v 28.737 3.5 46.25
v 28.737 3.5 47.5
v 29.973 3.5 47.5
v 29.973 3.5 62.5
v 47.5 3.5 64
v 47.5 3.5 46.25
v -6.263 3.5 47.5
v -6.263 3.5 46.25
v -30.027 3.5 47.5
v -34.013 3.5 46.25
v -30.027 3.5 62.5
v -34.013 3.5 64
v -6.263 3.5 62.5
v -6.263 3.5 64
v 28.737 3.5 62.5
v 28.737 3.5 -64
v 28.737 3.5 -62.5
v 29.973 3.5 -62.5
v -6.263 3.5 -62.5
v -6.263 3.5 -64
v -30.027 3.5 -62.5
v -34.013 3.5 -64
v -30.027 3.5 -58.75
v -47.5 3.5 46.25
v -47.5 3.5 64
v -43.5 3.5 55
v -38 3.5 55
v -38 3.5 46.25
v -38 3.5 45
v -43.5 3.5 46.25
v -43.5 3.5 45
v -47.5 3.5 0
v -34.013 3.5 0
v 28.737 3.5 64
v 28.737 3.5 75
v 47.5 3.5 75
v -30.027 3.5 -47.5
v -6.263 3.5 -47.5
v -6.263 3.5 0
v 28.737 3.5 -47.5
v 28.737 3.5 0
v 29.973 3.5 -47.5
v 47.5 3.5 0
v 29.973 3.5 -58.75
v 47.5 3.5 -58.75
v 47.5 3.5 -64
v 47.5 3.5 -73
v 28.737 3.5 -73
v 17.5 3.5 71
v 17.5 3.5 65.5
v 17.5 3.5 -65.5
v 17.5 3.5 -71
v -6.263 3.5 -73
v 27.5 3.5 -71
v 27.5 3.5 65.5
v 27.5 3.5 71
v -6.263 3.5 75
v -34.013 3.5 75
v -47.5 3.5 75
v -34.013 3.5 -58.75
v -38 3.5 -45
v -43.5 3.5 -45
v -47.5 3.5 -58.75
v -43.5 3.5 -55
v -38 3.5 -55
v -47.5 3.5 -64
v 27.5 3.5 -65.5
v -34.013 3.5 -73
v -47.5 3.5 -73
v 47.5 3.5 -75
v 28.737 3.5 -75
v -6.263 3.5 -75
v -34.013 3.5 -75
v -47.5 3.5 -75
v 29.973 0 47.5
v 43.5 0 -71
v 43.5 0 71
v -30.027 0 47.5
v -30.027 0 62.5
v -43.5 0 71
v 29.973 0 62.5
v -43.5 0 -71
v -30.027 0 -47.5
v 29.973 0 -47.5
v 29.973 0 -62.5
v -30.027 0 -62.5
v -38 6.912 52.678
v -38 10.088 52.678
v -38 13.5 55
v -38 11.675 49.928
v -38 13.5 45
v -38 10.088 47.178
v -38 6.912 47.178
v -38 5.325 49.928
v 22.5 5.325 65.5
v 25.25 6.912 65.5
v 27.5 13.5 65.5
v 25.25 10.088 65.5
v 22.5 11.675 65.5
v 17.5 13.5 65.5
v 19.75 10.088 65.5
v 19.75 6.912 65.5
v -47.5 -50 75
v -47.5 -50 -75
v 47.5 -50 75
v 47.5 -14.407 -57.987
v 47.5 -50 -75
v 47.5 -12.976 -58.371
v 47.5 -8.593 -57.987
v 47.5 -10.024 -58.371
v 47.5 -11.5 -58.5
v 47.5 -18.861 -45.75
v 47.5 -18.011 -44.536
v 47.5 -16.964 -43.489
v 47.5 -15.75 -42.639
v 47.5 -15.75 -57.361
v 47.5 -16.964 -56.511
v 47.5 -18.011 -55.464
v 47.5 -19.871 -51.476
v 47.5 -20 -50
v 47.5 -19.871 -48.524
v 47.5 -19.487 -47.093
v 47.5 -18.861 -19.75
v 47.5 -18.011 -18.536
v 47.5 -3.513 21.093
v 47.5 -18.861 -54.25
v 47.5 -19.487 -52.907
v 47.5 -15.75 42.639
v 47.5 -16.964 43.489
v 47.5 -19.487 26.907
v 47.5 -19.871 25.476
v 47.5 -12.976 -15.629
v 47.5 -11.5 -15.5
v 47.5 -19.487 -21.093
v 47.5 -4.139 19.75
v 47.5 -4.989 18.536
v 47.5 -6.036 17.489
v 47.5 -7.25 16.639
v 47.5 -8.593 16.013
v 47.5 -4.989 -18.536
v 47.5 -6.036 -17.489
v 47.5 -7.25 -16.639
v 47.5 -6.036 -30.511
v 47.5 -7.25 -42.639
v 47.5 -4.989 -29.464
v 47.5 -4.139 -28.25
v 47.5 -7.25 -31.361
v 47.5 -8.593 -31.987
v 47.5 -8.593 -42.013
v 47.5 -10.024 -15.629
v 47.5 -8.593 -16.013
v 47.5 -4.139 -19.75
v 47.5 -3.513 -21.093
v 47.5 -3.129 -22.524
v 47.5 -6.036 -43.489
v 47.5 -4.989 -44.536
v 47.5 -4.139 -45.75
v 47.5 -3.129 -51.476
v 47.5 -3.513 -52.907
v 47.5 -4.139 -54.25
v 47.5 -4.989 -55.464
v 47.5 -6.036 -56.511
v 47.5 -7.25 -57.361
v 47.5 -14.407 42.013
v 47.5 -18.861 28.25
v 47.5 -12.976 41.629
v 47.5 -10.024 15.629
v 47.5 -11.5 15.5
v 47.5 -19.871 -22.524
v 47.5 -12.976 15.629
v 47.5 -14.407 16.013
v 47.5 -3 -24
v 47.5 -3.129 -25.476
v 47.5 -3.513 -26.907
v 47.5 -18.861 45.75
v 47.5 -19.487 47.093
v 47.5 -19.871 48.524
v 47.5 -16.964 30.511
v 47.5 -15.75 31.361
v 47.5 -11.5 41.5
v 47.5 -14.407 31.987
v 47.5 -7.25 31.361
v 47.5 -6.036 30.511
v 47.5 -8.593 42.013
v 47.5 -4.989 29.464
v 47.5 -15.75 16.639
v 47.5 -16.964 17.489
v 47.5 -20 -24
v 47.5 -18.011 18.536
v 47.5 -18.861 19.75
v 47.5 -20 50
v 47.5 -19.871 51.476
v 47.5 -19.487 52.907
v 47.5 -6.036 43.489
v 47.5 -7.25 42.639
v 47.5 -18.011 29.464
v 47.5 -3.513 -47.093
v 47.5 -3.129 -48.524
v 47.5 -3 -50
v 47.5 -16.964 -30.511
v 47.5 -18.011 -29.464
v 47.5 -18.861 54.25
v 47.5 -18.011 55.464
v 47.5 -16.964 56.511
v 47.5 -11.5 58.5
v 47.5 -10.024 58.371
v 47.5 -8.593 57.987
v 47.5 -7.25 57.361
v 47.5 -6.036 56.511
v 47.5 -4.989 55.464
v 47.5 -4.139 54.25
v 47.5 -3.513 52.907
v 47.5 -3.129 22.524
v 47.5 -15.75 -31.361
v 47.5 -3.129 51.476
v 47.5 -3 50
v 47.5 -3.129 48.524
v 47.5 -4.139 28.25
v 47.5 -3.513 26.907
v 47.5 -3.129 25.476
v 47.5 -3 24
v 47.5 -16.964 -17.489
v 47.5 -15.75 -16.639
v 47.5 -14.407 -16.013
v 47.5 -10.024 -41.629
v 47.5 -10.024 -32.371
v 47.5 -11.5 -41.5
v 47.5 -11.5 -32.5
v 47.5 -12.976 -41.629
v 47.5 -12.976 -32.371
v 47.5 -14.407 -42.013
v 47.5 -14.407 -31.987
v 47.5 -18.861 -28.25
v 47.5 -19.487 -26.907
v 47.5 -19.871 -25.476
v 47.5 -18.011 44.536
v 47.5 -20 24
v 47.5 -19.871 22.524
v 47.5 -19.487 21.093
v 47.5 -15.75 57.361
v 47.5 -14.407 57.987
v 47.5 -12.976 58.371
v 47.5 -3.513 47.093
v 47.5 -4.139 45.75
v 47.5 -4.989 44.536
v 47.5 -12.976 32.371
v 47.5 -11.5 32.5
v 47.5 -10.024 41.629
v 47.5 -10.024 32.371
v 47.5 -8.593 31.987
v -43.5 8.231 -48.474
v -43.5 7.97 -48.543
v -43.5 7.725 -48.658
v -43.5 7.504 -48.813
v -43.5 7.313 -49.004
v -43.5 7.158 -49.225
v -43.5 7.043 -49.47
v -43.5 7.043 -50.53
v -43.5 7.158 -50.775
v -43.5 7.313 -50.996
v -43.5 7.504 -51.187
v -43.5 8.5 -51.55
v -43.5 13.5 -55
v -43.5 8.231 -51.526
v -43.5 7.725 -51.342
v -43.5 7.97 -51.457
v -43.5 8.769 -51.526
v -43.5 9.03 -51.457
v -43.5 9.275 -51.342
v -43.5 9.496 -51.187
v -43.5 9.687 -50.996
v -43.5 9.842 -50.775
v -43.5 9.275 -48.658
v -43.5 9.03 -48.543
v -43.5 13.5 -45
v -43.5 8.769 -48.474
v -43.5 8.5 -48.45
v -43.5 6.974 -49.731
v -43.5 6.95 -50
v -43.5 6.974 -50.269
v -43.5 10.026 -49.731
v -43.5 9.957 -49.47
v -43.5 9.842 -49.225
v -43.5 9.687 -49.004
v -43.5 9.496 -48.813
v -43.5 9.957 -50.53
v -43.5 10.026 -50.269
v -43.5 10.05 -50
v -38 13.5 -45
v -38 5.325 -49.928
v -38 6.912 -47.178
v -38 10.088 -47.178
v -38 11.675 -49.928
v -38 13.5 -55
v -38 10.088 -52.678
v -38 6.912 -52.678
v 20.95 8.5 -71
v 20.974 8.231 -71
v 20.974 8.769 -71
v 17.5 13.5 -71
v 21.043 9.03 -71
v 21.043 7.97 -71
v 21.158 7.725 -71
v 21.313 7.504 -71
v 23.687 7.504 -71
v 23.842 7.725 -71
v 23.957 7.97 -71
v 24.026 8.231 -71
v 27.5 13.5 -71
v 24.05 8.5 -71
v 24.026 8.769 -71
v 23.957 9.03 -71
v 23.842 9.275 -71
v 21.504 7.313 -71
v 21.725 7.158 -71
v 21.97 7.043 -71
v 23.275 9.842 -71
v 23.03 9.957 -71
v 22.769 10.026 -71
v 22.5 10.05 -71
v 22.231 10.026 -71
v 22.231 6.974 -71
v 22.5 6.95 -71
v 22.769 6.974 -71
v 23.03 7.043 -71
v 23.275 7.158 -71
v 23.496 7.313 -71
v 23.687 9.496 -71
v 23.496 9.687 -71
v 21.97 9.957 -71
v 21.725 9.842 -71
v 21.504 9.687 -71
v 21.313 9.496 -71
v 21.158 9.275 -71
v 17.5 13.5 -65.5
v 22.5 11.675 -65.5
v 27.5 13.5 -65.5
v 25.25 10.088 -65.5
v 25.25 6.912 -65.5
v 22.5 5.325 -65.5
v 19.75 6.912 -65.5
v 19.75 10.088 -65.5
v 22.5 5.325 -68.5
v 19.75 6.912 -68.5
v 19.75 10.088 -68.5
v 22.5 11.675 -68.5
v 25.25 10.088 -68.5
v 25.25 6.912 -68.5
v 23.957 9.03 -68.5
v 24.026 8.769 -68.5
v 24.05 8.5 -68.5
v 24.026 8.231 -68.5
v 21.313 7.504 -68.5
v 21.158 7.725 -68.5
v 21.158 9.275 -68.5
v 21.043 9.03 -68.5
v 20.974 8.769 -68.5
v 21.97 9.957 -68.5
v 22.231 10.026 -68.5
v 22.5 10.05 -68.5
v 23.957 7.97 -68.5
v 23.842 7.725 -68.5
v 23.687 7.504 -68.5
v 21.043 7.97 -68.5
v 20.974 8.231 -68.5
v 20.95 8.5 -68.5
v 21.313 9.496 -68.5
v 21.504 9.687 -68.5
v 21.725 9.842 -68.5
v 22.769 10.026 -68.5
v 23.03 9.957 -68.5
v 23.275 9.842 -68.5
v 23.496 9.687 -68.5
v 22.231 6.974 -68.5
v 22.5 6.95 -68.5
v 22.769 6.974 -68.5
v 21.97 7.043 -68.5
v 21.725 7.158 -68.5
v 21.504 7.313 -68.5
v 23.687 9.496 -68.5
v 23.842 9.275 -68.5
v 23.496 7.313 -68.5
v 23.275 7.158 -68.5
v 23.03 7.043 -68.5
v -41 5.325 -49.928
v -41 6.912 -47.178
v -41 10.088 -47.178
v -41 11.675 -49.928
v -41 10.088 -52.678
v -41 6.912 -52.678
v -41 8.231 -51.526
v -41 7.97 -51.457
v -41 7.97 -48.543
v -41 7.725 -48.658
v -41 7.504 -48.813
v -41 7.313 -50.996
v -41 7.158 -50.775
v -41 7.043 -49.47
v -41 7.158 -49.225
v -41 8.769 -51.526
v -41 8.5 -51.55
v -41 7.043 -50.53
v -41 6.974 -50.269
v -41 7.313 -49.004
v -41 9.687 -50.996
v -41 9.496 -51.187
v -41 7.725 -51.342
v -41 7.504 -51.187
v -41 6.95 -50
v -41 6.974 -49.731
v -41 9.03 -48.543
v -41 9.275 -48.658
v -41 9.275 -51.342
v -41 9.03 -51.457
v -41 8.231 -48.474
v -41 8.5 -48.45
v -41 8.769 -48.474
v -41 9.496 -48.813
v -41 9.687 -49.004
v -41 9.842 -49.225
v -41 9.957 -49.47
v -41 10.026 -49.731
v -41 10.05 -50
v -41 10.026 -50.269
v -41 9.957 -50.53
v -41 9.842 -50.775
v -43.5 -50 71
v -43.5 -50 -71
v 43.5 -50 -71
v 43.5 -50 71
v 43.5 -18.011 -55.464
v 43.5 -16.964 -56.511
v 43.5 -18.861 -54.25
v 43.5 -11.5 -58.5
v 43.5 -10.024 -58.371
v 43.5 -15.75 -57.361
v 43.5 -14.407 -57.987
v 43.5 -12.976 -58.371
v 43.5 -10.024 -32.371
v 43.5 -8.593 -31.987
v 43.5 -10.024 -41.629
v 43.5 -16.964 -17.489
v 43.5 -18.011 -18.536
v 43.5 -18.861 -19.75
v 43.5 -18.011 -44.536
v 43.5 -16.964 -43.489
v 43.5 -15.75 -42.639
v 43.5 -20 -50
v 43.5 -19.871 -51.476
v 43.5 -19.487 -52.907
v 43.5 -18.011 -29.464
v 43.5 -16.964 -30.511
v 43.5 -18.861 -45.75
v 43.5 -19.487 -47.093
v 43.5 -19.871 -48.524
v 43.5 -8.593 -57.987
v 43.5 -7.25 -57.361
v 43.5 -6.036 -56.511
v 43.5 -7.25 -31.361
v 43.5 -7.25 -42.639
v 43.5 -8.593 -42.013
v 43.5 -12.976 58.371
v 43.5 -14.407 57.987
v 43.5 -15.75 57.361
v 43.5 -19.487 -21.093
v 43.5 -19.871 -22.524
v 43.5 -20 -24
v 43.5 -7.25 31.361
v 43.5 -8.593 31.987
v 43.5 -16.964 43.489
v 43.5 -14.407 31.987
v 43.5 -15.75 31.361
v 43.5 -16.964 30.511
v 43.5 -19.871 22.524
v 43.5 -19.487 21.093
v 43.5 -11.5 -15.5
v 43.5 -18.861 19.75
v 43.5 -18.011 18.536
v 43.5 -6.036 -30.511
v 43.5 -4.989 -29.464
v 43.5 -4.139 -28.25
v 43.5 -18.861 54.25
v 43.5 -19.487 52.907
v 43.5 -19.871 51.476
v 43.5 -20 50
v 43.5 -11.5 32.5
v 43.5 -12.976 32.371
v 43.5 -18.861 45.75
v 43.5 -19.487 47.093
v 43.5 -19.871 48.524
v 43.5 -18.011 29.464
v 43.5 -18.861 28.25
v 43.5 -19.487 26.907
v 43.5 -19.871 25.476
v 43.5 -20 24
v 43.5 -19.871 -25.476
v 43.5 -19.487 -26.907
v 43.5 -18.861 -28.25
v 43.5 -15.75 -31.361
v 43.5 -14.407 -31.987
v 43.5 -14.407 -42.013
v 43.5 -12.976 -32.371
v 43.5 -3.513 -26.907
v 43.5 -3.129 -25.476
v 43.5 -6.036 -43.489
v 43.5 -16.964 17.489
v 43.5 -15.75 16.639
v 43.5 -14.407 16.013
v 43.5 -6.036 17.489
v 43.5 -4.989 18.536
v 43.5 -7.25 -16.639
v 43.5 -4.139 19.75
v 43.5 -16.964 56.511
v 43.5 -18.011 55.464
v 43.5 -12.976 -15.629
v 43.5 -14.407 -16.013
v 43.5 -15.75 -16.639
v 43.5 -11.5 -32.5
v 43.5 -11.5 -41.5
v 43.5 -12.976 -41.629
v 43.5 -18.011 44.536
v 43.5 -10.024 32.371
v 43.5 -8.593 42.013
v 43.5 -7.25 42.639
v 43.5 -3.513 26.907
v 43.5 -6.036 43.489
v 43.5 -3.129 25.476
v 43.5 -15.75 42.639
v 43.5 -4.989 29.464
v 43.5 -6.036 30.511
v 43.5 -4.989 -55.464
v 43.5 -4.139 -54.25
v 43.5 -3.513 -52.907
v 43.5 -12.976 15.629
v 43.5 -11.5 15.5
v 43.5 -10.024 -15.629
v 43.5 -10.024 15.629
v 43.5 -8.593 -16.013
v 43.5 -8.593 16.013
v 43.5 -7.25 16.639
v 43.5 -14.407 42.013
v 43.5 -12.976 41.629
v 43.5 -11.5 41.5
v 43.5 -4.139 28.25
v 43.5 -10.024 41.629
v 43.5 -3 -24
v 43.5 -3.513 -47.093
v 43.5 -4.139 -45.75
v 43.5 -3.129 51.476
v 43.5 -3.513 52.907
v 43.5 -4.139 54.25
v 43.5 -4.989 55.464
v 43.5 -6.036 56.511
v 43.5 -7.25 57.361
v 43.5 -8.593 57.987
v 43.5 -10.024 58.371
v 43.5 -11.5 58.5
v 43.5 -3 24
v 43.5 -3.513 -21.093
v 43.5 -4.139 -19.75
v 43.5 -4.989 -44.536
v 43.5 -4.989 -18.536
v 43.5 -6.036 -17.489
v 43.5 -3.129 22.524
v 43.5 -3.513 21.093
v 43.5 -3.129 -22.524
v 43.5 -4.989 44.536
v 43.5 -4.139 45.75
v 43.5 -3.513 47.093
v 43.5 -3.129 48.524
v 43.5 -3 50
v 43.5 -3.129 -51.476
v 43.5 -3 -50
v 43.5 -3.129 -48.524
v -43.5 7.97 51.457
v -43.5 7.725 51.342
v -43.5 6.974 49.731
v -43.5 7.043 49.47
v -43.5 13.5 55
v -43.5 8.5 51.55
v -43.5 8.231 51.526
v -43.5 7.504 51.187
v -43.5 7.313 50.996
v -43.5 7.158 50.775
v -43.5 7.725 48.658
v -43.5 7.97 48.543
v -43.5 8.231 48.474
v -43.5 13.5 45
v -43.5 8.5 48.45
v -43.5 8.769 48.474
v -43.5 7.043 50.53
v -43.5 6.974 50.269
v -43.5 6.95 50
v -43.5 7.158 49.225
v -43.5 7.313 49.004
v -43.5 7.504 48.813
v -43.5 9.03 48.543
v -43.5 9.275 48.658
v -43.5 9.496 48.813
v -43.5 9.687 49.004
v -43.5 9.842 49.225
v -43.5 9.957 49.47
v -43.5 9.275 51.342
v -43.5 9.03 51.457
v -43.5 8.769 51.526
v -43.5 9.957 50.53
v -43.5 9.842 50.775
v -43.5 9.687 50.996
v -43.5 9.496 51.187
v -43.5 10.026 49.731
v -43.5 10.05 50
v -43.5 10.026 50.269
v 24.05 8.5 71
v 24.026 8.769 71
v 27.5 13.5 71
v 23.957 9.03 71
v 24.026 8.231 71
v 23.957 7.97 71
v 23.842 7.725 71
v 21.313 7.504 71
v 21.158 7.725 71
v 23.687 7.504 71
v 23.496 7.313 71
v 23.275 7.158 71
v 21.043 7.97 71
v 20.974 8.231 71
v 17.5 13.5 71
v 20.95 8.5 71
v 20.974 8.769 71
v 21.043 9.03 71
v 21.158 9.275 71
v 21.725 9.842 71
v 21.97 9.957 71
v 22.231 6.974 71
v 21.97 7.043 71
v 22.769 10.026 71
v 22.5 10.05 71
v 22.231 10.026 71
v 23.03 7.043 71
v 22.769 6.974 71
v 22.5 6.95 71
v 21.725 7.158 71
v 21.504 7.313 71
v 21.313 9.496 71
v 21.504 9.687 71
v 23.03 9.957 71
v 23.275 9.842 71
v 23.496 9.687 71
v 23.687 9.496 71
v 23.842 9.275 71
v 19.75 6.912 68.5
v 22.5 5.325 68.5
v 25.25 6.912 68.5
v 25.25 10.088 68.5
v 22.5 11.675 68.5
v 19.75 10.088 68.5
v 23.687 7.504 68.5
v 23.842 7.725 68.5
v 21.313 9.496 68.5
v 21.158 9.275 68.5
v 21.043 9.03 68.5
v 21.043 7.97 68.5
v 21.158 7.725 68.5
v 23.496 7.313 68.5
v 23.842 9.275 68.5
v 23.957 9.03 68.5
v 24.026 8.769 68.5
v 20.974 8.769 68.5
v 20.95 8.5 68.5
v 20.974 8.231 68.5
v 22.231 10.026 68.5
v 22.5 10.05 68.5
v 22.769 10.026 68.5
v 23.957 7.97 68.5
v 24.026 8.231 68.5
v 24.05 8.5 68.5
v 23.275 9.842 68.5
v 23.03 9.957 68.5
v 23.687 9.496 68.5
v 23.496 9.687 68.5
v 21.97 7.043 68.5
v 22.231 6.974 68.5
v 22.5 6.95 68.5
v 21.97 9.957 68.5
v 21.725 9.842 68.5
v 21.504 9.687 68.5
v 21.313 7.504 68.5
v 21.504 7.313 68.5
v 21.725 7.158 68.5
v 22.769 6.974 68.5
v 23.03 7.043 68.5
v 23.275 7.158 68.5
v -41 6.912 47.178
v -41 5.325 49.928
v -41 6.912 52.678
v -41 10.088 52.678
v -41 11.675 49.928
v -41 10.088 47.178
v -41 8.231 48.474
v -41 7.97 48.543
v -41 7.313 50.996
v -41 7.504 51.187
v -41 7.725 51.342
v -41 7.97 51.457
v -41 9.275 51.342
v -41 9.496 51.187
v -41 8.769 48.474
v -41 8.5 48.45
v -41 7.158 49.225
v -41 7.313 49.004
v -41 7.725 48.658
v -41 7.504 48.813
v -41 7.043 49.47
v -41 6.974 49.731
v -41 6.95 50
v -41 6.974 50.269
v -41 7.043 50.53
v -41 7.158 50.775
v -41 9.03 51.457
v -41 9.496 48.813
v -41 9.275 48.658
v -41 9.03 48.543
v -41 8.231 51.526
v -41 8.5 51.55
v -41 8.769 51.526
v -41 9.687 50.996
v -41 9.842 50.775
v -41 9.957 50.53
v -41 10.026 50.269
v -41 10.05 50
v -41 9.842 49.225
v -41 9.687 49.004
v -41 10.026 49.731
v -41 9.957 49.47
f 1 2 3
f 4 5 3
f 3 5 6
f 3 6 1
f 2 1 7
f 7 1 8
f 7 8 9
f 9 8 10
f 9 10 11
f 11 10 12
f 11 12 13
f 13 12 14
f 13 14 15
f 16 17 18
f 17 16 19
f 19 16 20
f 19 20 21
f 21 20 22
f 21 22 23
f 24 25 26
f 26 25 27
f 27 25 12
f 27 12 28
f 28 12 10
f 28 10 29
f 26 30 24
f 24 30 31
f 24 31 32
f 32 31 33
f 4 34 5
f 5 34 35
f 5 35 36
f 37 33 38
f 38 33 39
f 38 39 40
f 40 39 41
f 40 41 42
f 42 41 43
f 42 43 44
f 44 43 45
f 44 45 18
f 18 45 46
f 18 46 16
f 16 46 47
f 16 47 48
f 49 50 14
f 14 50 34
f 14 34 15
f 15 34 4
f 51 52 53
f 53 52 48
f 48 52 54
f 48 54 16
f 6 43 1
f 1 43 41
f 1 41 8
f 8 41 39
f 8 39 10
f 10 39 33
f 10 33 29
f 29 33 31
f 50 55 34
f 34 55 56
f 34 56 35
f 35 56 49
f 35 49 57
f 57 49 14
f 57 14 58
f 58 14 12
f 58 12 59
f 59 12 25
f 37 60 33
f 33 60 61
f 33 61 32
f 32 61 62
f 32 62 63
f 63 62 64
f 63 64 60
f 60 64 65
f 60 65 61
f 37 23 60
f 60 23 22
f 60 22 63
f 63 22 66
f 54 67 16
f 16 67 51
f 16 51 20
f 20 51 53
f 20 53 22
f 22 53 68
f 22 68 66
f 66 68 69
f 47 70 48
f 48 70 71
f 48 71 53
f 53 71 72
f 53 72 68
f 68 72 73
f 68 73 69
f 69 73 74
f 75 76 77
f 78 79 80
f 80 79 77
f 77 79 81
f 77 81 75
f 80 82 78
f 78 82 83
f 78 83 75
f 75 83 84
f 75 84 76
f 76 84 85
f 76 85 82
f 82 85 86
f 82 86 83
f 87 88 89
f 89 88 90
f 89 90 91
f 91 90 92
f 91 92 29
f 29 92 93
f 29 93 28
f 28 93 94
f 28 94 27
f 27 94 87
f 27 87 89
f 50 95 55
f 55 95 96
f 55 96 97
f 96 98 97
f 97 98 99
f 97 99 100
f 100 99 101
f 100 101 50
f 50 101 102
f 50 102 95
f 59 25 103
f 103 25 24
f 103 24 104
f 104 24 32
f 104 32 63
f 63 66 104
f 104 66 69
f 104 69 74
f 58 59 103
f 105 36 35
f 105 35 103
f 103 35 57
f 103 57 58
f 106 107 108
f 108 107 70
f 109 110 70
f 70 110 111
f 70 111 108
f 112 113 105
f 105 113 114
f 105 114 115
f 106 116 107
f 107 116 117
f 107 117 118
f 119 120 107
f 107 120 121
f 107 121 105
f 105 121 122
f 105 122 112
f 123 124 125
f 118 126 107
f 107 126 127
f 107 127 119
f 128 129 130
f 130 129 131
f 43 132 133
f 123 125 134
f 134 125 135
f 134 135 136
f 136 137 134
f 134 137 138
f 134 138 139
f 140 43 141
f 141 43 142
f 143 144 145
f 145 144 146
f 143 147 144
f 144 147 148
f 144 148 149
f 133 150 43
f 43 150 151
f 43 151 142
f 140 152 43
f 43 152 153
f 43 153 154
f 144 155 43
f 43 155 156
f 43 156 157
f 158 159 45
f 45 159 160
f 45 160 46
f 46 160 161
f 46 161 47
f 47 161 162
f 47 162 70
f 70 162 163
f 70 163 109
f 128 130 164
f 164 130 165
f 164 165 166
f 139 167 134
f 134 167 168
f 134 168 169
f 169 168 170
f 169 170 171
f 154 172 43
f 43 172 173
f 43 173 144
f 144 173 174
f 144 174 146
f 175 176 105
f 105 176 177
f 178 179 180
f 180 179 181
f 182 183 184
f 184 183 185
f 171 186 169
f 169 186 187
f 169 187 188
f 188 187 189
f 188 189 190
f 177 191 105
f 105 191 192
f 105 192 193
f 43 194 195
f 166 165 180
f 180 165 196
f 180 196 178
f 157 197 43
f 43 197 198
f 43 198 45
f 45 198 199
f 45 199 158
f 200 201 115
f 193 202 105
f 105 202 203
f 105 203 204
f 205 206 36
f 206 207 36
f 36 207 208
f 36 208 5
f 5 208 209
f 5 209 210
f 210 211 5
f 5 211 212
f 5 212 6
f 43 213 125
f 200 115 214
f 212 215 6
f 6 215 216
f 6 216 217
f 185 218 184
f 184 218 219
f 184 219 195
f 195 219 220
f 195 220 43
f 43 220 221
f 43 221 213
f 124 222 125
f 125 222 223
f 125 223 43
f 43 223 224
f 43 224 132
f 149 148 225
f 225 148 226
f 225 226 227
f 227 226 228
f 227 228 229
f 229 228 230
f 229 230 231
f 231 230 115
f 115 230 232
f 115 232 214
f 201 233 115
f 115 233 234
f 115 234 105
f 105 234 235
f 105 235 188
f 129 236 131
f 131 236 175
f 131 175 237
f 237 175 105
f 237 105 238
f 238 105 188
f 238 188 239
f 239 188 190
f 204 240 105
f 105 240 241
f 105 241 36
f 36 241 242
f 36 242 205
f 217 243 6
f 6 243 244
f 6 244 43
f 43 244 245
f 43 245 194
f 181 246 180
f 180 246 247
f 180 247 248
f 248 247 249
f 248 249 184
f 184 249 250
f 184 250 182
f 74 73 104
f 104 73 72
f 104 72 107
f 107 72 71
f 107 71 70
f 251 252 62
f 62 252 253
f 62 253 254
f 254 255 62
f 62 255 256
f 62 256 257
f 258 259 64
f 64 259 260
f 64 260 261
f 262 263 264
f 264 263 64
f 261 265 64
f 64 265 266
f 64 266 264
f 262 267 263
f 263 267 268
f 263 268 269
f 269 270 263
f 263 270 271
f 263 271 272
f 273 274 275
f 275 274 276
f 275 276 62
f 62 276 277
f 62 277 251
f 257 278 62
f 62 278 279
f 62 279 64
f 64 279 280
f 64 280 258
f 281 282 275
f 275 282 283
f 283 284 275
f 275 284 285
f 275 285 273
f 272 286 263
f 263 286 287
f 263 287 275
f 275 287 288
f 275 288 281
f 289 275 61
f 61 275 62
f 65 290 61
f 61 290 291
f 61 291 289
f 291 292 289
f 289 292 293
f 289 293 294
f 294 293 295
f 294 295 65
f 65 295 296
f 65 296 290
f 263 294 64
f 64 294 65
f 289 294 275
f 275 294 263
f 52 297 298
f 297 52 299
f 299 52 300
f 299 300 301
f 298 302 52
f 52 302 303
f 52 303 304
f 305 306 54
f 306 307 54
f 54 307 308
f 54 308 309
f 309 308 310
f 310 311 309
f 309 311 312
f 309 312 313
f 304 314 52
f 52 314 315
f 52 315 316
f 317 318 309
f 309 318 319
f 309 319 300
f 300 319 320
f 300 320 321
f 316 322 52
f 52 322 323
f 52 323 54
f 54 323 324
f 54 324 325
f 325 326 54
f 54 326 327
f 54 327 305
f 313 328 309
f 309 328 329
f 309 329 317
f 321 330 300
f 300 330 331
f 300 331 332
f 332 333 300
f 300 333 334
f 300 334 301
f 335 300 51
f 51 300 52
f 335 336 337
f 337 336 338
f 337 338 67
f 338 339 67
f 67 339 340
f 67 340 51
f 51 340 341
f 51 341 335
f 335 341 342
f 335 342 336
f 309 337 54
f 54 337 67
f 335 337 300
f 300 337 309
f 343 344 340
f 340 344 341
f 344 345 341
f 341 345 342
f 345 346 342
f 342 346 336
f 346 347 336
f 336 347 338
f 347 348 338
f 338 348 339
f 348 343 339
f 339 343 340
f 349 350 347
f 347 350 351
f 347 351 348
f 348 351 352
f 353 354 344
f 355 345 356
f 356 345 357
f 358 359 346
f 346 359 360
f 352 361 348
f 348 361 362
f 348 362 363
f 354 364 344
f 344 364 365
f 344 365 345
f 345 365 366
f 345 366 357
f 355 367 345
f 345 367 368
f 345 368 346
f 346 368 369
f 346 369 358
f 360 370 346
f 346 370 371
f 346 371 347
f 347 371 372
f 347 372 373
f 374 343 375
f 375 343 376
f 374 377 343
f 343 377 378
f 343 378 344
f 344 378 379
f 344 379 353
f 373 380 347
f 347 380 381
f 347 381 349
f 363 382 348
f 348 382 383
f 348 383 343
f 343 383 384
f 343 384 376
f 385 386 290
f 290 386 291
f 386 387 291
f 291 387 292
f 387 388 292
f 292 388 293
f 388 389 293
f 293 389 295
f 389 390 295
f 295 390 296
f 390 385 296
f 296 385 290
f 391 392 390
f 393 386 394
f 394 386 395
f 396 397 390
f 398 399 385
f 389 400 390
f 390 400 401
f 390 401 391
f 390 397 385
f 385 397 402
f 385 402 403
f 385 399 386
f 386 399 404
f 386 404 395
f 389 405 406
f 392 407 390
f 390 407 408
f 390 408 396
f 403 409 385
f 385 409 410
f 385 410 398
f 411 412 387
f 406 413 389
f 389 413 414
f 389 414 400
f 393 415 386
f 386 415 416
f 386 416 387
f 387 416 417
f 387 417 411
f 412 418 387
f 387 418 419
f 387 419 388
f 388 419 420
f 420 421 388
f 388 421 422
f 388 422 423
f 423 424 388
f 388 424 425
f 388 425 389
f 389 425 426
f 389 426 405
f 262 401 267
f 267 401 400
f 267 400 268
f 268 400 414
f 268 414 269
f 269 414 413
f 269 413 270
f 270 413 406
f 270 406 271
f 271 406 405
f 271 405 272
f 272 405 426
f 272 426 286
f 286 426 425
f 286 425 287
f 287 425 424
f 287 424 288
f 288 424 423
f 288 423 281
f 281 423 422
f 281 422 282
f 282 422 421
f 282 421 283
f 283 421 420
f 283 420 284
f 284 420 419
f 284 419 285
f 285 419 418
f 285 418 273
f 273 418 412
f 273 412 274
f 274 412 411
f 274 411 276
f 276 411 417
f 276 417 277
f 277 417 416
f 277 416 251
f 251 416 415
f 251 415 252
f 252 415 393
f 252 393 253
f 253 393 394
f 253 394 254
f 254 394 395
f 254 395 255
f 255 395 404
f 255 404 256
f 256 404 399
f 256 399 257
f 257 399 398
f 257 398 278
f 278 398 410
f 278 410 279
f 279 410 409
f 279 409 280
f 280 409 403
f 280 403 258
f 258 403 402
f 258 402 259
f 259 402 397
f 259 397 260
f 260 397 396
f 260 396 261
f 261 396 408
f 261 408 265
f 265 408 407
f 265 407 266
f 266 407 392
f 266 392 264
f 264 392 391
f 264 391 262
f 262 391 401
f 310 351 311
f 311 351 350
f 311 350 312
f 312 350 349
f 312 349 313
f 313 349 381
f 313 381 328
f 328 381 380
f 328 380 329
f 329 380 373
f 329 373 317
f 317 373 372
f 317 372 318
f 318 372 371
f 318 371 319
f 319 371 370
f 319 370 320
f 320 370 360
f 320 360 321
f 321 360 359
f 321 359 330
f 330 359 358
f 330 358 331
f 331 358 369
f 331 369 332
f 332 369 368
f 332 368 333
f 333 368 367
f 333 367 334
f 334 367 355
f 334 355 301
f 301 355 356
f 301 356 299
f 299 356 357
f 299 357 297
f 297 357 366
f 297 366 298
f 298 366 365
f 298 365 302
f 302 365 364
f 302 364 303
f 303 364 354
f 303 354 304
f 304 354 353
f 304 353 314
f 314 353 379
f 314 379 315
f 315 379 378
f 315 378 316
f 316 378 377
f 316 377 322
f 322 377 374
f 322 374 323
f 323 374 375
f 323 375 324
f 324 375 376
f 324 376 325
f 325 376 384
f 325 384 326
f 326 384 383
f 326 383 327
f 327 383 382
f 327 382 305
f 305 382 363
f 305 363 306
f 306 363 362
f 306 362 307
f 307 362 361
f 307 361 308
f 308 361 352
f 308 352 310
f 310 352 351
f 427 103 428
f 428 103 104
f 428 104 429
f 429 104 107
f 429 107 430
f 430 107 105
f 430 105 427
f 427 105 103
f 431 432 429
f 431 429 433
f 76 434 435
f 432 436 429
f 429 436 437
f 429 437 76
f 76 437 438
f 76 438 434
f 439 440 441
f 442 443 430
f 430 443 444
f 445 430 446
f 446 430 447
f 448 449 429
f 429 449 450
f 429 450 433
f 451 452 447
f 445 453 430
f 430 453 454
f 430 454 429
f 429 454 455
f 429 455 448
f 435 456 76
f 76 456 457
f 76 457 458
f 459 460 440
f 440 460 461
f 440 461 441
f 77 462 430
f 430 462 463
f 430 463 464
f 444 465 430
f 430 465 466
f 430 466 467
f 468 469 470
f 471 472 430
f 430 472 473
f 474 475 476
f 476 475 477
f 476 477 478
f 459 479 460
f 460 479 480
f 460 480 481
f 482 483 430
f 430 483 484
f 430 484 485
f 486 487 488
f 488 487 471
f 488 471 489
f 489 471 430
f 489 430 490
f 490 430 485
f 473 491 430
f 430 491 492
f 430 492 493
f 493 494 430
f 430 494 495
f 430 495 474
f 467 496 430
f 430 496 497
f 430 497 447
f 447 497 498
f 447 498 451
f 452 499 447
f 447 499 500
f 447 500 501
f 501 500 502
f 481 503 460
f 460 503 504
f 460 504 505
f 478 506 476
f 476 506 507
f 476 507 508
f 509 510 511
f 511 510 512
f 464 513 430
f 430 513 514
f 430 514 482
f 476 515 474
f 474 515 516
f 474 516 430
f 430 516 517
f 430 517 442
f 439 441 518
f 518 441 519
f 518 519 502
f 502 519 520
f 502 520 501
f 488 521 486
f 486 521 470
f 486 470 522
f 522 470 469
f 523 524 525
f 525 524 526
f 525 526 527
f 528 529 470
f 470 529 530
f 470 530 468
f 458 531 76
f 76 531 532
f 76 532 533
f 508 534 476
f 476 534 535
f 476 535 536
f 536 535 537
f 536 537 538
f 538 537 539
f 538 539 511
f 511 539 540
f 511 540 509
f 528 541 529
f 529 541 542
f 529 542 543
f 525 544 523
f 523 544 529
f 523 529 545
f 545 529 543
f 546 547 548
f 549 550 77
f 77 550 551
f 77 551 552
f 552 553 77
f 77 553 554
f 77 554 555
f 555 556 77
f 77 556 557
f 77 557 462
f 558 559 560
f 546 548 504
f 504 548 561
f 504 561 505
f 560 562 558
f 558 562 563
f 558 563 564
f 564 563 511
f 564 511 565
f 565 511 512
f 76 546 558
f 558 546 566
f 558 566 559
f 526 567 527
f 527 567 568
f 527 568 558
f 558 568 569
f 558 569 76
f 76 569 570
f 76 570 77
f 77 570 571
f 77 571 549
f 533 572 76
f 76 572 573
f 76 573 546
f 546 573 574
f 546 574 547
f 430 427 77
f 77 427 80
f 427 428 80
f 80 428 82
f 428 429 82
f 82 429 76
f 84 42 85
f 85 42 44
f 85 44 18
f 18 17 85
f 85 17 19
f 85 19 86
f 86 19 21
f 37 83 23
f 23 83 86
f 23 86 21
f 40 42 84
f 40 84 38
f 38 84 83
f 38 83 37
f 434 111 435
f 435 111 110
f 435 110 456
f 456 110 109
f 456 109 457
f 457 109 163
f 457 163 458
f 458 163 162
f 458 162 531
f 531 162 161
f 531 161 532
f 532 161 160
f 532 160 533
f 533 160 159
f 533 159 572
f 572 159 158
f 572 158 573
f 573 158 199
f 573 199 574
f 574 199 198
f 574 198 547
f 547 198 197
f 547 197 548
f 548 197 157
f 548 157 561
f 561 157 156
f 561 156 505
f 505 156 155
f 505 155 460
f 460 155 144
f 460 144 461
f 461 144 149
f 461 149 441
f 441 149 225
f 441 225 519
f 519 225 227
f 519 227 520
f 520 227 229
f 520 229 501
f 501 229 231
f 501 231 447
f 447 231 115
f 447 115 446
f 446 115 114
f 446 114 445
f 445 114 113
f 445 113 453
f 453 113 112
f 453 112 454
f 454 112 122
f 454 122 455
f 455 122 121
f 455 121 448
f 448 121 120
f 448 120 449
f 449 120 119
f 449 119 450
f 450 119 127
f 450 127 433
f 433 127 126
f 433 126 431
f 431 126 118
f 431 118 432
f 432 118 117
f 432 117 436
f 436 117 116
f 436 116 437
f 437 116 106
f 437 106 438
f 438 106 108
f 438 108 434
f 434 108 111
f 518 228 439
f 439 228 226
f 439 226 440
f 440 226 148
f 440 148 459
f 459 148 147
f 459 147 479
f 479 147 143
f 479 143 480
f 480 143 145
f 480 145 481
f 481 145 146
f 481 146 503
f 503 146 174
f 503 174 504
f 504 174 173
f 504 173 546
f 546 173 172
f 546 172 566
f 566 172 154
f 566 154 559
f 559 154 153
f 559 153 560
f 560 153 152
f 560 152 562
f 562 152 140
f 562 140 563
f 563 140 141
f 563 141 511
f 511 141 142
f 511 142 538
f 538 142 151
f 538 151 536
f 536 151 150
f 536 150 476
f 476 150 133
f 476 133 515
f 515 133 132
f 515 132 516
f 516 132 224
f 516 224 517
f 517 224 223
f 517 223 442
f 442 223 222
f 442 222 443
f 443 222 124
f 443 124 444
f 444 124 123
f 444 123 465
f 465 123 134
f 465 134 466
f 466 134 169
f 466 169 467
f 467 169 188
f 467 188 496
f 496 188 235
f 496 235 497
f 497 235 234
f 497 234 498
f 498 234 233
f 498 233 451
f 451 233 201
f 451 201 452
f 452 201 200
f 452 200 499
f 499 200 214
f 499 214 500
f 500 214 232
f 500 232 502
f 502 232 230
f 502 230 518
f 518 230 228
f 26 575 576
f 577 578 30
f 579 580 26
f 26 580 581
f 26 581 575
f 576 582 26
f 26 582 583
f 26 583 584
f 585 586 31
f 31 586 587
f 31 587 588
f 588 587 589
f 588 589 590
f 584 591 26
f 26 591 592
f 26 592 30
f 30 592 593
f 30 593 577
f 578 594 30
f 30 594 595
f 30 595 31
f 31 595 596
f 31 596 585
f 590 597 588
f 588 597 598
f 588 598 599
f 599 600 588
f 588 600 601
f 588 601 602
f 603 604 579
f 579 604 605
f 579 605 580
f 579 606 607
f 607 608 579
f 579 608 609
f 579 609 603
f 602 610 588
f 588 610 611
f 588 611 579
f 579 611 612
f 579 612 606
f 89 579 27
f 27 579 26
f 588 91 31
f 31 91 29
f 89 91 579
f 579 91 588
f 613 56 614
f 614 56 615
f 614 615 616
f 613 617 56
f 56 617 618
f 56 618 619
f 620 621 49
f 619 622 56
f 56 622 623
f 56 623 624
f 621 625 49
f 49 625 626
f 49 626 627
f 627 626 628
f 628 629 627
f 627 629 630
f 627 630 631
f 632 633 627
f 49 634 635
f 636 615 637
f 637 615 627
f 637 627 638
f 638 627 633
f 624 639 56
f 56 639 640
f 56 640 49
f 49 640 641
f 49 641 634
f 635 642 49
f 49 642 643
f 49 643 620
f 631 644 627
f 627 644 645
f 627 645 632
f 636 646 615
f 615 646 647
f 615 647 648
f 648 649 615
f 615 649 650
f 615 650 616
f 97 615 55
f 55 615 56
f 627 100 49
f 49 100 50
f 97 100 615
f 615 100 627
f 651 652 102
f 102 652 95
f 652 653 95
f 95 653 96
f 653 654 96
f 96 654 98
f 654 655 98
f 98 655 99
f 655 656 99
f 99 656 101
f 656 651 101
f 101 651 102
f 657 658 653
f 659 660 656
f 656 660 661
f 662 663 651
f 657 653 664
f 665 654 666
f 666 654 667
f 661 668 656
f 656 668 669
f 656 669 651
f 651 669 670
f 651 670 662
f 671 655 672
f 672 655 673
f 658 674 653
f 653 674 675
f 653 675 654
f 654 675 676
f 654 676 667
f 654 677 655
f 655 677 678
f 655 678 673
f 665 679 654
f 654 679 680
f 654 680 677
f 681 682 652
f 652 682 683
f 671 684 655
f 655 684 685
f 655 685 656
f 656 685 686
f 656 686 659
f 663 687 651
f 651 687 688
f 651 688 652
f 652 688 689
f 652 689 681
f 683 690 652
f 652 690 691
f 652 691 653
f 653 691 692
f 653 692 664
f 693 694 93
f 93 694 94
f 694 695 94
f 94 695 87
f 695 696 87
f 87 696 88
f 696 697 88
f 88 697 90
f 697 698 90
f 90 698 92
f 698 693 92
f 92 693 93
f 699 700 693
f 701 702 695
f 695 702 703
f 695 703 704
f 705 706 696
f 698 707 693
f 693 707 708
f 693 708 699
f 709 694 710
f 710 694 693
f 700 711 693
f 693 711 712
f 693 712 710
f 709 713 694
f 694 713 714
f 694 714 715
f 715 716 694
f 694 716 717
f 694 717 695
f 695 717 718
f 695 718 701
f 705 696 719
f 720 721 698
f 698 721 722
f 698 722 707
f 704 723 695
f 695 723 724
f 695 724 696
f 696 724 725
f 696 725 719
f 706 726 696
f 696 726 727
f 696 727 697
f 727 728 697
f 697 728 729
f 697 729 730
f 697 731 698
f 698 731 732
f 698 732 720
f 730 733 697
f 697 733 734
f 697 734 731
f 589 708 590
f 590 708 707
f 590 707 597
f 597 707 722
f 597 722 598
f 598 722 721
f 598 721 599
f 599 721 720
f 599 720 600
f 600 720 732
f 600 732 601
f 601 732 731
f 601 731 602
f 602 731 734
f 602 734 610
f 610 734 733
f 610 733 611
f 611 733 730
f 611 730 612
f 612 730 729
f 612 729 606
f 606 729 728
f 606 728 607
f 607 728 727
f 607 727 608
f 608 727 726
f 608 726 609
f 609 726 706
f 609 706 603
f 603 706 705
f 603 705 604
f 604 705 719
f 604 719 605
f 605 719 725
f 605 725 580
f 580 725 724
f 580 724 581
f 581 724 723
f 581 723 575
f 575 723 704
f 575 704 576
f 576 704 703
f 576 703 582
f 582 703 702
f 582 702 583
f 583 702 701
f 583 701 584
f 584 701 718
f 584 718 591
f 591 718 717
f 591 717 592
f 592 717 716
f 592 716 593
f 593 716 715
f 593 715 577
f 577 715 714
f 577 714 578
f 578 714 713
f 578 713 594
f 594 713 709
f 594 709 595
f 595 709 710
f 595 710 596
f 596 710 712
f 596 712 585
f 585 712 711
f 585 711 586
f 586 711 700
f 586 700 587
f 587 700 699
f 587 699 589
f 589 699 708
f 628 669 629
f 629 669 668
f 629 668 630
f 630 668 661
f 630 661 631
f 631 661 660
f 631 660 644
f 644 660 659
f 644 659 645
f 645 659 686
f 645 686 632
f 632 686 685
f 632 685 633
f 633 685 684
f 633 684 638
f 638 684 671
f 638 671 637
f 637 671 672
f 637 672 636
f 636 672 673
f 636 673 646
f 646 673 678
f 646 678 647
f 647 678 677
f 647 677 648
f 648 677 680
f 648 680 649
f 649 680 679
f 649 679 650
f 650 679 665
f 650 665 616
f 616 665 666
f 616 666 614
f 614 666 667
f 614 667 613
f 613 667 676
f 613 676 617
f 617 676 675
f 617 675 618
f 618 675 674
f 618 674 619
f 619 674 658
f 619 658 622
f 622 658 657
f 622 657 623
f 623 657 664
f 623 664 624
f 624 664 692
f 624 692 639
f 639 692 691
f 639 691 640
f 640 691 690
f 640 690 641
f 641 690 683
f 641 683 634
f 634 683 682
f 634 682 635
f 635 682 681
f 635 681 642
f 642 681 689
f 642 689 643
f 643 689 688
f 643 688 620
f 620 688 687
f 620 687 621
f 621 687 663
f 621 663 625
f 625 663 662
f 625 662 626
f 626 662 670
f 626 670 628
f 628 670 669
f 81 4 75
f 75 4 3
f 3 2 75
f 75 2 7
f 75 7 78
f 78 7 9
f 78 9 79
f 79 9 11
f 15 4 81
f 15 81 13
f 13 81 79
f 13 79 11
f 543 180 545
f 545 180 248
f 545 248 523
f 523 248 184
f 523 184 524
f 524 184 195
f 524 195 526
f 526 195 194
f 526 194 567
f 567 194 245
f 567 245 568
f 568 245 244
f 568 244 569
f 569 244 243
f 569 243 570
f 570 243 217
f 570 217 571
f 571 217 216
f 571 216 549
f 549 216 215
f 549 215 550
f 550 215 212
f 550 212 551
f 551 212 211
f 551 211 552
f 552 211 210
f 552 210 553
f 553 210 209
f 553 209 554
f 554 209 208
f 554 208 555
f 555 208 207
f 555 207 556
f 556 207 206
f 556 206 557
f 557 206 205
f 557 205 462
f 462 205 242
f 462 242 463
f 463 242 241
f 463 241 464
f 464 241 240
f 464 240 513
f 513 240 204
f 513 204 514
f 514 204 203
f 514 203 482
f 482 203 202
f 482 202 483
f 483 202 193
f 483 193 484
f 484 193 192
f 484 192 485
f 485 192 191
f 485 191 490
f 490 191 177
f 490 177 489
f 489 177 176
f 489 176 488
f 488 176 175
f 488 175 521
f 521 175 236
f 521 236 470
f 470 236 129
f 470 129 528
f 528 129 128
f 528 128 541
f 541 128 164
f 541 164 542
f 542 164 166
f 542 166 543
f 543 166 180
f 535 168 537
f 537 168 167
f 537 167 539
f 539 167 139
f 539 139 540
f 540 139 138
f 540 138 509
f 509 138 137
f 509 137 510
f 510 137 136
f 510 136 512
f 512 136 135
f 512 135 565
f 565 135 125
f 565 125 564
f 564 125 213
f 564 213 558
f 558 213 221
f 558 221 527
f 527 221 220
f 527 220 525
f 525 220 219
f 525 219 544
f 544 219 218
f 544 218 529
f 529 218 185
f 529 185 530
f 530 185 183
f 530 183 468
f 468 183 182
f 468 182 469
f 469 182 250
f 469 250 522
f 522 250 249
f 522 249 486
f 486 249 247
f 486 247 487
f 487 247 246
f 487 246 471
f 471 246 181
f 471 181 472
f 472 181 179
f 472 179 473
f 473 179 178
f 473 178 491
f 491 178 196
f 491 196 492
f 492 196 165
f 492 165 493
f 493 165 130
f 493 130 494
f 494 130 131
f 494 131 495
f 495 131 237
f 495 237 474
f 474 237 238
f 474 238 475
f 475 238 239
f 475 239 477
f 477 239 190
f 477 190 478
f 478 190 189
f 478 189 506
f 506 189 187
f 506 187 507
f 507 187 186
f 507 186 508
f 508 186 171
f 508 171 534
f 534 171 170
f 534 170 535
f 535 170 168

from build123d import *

# Parameters (mm, degrees)
SKETCH1_W           = 95
SKETCH1_H           = 150
BOSS_EXTRUDE1_DEPTH = 3.5
SKETCH2_W           = 5.5
SKETCH2_H           = 10
SKETCH2_W_2         = 10
SKETCH2_H_2         = 5.5
BOSS_EXTRUDE2_DEPTH = 10
CUT_EXTRUDE1_DEPTH  = 3
CUT_EXTRUDE2_DEPTH  = 3
SKETCH6_R           = 1.55
CUT_EXTRUDE3_DEPTH  = 10.5
SKETCH7_R           = 1.55
CUT_EXTRUDE4_DEPTH  = 10.5
SKETCH8_W           = 95
SKETCH8_H           = 150
SKETCH8_W_2         = 87
SKETCH8_H_2         = 142
BOSS_EXTRUDE3_DEPTH = 50
SKETCH9_W           = 60
SKETCH9_H           = 15
CUT_EXTRUDE5_DEPTH  = 50
SKETCH10_R          = 8.5
CUT_EXTRUDE6_DEPTH  = 50


with BuildPart() as part:
    # Sketch1 → Boss-Extrude1 (new body)
    with BuildSketch(Plane(origin=(0, 0, 0), x_dir=(1, 0, 0), z_dir=(0, 1, 0))):
        Rectangle(SKETCH1_W, SKETCH1_H)
    extrude(amount=BOSS_EXTRUDE1_DEPTH)

    # Sketch2 → Boss-Extrude2 (add)
    with BuildSketch(Plane(origin=(0, 3.5, 0), x_dir=(1, 0, 0), z_dir=(0, 1, 0))):
        with Locations((-40.75, 50)):
            Rectangle(SKETCH2_W, SKETCH2_H)
        with Locations((22.5, 68.25)):
            Rectangle(SKETCH2_W_2, SKETCH2_H_2)
    boss_extrude2 = extrude(amount=BOSS_EXTRUDE2_DEPTH)

    # Sketch3 → Cut-Extrude1 (cut)
    with BuildSketch(Plane.XY.offset(-65.5)):
        Polygon((22.5, 5.324573519), (25.25, 6.91228676), (25.25, 10.08771324), (22.5, 11.675426481), (19.75, 10.08771324), (19.75, 6.91228676), align=None)
    cut_extrude1 = extrude(amount=-CUT_EXTRUDE1_DEPTH, mode=Mode.SUBTRACT)

    # Sketch4 → Cut-Extrude2 (cut)
    with BuildSketch(Plane(origin=(-38, 0, 0), x_dir=(0, 0, -1), z_dir=(1, 0, 0))):
        Polygon((49.928125047, 5.324573519), (52.678125047, 6.91228676), (52.678125047, 10.08771324), (49.928125047, 11.675426481), (47.178125047, 10.08771324), (47.178125047, 6.91228676), align=None)
    cut_extrude2 = extrude(amount=-CUT_EXTRUDE2_DEPTH, mode=Mode.SUBTRACT)

    # Sketch6 → Cut-Extrude3 (cut, through all)
    with BuildSketch(Plane(origin=(-38, 0, 0), x_dir=(0, 0, -1), z_dir=(1, 0, 0))):
        with Locations((50, 8.5)):
            Circle(SKETCH6_R)
    cut_extrude3 = extrude(amount=-CUT_EXTRUDE3_DEPTH, mode=Mode.SUBTRACT)

    # Sketch7 → Cut-Extrude4 (cut, through all)
    with BuildSketch(Plane.XY.offset(-65.5)):
        with Locations((22.5, 8.5)):
            Circle(SKETCH7_R)
    cut_extrude4 = extrude(amount=-CUT_EXTRUDE4_DEPTH, mode=Mode.SUBTRACT)

    # Sketch8 → Boss-Extrude3 (add)
    with BuildSketch(Plane.XZ):
        Rectangle(SKETCH8_W, SKETCH8_H)
        Rectangle(SKETCH8_W_2, SKETCH8_H_2, mode=Mode.SUBTRACT)
    extrude(amount=BOSS_EXTRUDE3_DEPTH)

    # Sketch9 → Cut-Extrude5 (cut)
    with BuildSketch(Plane.XZ):
        with Locations((-0.026887888, -55)):
            Rectangle(SKETCH9_W, SKETCH9_H)
    cut_extrude5 = extrude(amount=-CUT_EXTRUDE5_DEPTH, mode=Mode.SUBTRACT)

    # Sketch10 → Cut-Extrude6 (cut)
    with BuildSketch(Plane(origin=(47.5, 0, 0), x_dir=(0, 0, -1), z_dir=(1, 0, 0))):
        with Locations((50, -11.5)):
            Circle(SKETCH10_R)
        with Locations((24, -11.5)):
            Circle(SKETCH10_R)
    cut_extrude6 = extrude(amount=-CUT_EXTRUDE6_DEPTH, mode=Mode.SUBTRACT)

    # Mirror1: Boss-Extrude2, Cut-Extrude1, Cut-Extrude2, Cut-Extrude3, Cut-Extrude4, Cut-Extrude5, Cut-Extrude6 across plane
    add(boss_extrude2.mirror(Plane.XY))
    add(cut_extrude1.mirror(Plane.XY), mode=Mode.SUBTRACT)
    add(cut_extrude2.mirror(Plane.XY), mode=Mode.SUBTRACT)
    add(cut_extrude3.mirror(Plane.XY), mode=Mode.SUBTRACT)
    add(cut_extrude4.mirror(Plane.XY), mode=Mode.SUBTRACT)
    add(cut_extrude5.mirror(Plane.XY), mode=Mode.SUBTRACT)
    add(cut_extrude6.mirror(Plane.XY), mode=Mode.SUBTRACT)


solid = part.part
